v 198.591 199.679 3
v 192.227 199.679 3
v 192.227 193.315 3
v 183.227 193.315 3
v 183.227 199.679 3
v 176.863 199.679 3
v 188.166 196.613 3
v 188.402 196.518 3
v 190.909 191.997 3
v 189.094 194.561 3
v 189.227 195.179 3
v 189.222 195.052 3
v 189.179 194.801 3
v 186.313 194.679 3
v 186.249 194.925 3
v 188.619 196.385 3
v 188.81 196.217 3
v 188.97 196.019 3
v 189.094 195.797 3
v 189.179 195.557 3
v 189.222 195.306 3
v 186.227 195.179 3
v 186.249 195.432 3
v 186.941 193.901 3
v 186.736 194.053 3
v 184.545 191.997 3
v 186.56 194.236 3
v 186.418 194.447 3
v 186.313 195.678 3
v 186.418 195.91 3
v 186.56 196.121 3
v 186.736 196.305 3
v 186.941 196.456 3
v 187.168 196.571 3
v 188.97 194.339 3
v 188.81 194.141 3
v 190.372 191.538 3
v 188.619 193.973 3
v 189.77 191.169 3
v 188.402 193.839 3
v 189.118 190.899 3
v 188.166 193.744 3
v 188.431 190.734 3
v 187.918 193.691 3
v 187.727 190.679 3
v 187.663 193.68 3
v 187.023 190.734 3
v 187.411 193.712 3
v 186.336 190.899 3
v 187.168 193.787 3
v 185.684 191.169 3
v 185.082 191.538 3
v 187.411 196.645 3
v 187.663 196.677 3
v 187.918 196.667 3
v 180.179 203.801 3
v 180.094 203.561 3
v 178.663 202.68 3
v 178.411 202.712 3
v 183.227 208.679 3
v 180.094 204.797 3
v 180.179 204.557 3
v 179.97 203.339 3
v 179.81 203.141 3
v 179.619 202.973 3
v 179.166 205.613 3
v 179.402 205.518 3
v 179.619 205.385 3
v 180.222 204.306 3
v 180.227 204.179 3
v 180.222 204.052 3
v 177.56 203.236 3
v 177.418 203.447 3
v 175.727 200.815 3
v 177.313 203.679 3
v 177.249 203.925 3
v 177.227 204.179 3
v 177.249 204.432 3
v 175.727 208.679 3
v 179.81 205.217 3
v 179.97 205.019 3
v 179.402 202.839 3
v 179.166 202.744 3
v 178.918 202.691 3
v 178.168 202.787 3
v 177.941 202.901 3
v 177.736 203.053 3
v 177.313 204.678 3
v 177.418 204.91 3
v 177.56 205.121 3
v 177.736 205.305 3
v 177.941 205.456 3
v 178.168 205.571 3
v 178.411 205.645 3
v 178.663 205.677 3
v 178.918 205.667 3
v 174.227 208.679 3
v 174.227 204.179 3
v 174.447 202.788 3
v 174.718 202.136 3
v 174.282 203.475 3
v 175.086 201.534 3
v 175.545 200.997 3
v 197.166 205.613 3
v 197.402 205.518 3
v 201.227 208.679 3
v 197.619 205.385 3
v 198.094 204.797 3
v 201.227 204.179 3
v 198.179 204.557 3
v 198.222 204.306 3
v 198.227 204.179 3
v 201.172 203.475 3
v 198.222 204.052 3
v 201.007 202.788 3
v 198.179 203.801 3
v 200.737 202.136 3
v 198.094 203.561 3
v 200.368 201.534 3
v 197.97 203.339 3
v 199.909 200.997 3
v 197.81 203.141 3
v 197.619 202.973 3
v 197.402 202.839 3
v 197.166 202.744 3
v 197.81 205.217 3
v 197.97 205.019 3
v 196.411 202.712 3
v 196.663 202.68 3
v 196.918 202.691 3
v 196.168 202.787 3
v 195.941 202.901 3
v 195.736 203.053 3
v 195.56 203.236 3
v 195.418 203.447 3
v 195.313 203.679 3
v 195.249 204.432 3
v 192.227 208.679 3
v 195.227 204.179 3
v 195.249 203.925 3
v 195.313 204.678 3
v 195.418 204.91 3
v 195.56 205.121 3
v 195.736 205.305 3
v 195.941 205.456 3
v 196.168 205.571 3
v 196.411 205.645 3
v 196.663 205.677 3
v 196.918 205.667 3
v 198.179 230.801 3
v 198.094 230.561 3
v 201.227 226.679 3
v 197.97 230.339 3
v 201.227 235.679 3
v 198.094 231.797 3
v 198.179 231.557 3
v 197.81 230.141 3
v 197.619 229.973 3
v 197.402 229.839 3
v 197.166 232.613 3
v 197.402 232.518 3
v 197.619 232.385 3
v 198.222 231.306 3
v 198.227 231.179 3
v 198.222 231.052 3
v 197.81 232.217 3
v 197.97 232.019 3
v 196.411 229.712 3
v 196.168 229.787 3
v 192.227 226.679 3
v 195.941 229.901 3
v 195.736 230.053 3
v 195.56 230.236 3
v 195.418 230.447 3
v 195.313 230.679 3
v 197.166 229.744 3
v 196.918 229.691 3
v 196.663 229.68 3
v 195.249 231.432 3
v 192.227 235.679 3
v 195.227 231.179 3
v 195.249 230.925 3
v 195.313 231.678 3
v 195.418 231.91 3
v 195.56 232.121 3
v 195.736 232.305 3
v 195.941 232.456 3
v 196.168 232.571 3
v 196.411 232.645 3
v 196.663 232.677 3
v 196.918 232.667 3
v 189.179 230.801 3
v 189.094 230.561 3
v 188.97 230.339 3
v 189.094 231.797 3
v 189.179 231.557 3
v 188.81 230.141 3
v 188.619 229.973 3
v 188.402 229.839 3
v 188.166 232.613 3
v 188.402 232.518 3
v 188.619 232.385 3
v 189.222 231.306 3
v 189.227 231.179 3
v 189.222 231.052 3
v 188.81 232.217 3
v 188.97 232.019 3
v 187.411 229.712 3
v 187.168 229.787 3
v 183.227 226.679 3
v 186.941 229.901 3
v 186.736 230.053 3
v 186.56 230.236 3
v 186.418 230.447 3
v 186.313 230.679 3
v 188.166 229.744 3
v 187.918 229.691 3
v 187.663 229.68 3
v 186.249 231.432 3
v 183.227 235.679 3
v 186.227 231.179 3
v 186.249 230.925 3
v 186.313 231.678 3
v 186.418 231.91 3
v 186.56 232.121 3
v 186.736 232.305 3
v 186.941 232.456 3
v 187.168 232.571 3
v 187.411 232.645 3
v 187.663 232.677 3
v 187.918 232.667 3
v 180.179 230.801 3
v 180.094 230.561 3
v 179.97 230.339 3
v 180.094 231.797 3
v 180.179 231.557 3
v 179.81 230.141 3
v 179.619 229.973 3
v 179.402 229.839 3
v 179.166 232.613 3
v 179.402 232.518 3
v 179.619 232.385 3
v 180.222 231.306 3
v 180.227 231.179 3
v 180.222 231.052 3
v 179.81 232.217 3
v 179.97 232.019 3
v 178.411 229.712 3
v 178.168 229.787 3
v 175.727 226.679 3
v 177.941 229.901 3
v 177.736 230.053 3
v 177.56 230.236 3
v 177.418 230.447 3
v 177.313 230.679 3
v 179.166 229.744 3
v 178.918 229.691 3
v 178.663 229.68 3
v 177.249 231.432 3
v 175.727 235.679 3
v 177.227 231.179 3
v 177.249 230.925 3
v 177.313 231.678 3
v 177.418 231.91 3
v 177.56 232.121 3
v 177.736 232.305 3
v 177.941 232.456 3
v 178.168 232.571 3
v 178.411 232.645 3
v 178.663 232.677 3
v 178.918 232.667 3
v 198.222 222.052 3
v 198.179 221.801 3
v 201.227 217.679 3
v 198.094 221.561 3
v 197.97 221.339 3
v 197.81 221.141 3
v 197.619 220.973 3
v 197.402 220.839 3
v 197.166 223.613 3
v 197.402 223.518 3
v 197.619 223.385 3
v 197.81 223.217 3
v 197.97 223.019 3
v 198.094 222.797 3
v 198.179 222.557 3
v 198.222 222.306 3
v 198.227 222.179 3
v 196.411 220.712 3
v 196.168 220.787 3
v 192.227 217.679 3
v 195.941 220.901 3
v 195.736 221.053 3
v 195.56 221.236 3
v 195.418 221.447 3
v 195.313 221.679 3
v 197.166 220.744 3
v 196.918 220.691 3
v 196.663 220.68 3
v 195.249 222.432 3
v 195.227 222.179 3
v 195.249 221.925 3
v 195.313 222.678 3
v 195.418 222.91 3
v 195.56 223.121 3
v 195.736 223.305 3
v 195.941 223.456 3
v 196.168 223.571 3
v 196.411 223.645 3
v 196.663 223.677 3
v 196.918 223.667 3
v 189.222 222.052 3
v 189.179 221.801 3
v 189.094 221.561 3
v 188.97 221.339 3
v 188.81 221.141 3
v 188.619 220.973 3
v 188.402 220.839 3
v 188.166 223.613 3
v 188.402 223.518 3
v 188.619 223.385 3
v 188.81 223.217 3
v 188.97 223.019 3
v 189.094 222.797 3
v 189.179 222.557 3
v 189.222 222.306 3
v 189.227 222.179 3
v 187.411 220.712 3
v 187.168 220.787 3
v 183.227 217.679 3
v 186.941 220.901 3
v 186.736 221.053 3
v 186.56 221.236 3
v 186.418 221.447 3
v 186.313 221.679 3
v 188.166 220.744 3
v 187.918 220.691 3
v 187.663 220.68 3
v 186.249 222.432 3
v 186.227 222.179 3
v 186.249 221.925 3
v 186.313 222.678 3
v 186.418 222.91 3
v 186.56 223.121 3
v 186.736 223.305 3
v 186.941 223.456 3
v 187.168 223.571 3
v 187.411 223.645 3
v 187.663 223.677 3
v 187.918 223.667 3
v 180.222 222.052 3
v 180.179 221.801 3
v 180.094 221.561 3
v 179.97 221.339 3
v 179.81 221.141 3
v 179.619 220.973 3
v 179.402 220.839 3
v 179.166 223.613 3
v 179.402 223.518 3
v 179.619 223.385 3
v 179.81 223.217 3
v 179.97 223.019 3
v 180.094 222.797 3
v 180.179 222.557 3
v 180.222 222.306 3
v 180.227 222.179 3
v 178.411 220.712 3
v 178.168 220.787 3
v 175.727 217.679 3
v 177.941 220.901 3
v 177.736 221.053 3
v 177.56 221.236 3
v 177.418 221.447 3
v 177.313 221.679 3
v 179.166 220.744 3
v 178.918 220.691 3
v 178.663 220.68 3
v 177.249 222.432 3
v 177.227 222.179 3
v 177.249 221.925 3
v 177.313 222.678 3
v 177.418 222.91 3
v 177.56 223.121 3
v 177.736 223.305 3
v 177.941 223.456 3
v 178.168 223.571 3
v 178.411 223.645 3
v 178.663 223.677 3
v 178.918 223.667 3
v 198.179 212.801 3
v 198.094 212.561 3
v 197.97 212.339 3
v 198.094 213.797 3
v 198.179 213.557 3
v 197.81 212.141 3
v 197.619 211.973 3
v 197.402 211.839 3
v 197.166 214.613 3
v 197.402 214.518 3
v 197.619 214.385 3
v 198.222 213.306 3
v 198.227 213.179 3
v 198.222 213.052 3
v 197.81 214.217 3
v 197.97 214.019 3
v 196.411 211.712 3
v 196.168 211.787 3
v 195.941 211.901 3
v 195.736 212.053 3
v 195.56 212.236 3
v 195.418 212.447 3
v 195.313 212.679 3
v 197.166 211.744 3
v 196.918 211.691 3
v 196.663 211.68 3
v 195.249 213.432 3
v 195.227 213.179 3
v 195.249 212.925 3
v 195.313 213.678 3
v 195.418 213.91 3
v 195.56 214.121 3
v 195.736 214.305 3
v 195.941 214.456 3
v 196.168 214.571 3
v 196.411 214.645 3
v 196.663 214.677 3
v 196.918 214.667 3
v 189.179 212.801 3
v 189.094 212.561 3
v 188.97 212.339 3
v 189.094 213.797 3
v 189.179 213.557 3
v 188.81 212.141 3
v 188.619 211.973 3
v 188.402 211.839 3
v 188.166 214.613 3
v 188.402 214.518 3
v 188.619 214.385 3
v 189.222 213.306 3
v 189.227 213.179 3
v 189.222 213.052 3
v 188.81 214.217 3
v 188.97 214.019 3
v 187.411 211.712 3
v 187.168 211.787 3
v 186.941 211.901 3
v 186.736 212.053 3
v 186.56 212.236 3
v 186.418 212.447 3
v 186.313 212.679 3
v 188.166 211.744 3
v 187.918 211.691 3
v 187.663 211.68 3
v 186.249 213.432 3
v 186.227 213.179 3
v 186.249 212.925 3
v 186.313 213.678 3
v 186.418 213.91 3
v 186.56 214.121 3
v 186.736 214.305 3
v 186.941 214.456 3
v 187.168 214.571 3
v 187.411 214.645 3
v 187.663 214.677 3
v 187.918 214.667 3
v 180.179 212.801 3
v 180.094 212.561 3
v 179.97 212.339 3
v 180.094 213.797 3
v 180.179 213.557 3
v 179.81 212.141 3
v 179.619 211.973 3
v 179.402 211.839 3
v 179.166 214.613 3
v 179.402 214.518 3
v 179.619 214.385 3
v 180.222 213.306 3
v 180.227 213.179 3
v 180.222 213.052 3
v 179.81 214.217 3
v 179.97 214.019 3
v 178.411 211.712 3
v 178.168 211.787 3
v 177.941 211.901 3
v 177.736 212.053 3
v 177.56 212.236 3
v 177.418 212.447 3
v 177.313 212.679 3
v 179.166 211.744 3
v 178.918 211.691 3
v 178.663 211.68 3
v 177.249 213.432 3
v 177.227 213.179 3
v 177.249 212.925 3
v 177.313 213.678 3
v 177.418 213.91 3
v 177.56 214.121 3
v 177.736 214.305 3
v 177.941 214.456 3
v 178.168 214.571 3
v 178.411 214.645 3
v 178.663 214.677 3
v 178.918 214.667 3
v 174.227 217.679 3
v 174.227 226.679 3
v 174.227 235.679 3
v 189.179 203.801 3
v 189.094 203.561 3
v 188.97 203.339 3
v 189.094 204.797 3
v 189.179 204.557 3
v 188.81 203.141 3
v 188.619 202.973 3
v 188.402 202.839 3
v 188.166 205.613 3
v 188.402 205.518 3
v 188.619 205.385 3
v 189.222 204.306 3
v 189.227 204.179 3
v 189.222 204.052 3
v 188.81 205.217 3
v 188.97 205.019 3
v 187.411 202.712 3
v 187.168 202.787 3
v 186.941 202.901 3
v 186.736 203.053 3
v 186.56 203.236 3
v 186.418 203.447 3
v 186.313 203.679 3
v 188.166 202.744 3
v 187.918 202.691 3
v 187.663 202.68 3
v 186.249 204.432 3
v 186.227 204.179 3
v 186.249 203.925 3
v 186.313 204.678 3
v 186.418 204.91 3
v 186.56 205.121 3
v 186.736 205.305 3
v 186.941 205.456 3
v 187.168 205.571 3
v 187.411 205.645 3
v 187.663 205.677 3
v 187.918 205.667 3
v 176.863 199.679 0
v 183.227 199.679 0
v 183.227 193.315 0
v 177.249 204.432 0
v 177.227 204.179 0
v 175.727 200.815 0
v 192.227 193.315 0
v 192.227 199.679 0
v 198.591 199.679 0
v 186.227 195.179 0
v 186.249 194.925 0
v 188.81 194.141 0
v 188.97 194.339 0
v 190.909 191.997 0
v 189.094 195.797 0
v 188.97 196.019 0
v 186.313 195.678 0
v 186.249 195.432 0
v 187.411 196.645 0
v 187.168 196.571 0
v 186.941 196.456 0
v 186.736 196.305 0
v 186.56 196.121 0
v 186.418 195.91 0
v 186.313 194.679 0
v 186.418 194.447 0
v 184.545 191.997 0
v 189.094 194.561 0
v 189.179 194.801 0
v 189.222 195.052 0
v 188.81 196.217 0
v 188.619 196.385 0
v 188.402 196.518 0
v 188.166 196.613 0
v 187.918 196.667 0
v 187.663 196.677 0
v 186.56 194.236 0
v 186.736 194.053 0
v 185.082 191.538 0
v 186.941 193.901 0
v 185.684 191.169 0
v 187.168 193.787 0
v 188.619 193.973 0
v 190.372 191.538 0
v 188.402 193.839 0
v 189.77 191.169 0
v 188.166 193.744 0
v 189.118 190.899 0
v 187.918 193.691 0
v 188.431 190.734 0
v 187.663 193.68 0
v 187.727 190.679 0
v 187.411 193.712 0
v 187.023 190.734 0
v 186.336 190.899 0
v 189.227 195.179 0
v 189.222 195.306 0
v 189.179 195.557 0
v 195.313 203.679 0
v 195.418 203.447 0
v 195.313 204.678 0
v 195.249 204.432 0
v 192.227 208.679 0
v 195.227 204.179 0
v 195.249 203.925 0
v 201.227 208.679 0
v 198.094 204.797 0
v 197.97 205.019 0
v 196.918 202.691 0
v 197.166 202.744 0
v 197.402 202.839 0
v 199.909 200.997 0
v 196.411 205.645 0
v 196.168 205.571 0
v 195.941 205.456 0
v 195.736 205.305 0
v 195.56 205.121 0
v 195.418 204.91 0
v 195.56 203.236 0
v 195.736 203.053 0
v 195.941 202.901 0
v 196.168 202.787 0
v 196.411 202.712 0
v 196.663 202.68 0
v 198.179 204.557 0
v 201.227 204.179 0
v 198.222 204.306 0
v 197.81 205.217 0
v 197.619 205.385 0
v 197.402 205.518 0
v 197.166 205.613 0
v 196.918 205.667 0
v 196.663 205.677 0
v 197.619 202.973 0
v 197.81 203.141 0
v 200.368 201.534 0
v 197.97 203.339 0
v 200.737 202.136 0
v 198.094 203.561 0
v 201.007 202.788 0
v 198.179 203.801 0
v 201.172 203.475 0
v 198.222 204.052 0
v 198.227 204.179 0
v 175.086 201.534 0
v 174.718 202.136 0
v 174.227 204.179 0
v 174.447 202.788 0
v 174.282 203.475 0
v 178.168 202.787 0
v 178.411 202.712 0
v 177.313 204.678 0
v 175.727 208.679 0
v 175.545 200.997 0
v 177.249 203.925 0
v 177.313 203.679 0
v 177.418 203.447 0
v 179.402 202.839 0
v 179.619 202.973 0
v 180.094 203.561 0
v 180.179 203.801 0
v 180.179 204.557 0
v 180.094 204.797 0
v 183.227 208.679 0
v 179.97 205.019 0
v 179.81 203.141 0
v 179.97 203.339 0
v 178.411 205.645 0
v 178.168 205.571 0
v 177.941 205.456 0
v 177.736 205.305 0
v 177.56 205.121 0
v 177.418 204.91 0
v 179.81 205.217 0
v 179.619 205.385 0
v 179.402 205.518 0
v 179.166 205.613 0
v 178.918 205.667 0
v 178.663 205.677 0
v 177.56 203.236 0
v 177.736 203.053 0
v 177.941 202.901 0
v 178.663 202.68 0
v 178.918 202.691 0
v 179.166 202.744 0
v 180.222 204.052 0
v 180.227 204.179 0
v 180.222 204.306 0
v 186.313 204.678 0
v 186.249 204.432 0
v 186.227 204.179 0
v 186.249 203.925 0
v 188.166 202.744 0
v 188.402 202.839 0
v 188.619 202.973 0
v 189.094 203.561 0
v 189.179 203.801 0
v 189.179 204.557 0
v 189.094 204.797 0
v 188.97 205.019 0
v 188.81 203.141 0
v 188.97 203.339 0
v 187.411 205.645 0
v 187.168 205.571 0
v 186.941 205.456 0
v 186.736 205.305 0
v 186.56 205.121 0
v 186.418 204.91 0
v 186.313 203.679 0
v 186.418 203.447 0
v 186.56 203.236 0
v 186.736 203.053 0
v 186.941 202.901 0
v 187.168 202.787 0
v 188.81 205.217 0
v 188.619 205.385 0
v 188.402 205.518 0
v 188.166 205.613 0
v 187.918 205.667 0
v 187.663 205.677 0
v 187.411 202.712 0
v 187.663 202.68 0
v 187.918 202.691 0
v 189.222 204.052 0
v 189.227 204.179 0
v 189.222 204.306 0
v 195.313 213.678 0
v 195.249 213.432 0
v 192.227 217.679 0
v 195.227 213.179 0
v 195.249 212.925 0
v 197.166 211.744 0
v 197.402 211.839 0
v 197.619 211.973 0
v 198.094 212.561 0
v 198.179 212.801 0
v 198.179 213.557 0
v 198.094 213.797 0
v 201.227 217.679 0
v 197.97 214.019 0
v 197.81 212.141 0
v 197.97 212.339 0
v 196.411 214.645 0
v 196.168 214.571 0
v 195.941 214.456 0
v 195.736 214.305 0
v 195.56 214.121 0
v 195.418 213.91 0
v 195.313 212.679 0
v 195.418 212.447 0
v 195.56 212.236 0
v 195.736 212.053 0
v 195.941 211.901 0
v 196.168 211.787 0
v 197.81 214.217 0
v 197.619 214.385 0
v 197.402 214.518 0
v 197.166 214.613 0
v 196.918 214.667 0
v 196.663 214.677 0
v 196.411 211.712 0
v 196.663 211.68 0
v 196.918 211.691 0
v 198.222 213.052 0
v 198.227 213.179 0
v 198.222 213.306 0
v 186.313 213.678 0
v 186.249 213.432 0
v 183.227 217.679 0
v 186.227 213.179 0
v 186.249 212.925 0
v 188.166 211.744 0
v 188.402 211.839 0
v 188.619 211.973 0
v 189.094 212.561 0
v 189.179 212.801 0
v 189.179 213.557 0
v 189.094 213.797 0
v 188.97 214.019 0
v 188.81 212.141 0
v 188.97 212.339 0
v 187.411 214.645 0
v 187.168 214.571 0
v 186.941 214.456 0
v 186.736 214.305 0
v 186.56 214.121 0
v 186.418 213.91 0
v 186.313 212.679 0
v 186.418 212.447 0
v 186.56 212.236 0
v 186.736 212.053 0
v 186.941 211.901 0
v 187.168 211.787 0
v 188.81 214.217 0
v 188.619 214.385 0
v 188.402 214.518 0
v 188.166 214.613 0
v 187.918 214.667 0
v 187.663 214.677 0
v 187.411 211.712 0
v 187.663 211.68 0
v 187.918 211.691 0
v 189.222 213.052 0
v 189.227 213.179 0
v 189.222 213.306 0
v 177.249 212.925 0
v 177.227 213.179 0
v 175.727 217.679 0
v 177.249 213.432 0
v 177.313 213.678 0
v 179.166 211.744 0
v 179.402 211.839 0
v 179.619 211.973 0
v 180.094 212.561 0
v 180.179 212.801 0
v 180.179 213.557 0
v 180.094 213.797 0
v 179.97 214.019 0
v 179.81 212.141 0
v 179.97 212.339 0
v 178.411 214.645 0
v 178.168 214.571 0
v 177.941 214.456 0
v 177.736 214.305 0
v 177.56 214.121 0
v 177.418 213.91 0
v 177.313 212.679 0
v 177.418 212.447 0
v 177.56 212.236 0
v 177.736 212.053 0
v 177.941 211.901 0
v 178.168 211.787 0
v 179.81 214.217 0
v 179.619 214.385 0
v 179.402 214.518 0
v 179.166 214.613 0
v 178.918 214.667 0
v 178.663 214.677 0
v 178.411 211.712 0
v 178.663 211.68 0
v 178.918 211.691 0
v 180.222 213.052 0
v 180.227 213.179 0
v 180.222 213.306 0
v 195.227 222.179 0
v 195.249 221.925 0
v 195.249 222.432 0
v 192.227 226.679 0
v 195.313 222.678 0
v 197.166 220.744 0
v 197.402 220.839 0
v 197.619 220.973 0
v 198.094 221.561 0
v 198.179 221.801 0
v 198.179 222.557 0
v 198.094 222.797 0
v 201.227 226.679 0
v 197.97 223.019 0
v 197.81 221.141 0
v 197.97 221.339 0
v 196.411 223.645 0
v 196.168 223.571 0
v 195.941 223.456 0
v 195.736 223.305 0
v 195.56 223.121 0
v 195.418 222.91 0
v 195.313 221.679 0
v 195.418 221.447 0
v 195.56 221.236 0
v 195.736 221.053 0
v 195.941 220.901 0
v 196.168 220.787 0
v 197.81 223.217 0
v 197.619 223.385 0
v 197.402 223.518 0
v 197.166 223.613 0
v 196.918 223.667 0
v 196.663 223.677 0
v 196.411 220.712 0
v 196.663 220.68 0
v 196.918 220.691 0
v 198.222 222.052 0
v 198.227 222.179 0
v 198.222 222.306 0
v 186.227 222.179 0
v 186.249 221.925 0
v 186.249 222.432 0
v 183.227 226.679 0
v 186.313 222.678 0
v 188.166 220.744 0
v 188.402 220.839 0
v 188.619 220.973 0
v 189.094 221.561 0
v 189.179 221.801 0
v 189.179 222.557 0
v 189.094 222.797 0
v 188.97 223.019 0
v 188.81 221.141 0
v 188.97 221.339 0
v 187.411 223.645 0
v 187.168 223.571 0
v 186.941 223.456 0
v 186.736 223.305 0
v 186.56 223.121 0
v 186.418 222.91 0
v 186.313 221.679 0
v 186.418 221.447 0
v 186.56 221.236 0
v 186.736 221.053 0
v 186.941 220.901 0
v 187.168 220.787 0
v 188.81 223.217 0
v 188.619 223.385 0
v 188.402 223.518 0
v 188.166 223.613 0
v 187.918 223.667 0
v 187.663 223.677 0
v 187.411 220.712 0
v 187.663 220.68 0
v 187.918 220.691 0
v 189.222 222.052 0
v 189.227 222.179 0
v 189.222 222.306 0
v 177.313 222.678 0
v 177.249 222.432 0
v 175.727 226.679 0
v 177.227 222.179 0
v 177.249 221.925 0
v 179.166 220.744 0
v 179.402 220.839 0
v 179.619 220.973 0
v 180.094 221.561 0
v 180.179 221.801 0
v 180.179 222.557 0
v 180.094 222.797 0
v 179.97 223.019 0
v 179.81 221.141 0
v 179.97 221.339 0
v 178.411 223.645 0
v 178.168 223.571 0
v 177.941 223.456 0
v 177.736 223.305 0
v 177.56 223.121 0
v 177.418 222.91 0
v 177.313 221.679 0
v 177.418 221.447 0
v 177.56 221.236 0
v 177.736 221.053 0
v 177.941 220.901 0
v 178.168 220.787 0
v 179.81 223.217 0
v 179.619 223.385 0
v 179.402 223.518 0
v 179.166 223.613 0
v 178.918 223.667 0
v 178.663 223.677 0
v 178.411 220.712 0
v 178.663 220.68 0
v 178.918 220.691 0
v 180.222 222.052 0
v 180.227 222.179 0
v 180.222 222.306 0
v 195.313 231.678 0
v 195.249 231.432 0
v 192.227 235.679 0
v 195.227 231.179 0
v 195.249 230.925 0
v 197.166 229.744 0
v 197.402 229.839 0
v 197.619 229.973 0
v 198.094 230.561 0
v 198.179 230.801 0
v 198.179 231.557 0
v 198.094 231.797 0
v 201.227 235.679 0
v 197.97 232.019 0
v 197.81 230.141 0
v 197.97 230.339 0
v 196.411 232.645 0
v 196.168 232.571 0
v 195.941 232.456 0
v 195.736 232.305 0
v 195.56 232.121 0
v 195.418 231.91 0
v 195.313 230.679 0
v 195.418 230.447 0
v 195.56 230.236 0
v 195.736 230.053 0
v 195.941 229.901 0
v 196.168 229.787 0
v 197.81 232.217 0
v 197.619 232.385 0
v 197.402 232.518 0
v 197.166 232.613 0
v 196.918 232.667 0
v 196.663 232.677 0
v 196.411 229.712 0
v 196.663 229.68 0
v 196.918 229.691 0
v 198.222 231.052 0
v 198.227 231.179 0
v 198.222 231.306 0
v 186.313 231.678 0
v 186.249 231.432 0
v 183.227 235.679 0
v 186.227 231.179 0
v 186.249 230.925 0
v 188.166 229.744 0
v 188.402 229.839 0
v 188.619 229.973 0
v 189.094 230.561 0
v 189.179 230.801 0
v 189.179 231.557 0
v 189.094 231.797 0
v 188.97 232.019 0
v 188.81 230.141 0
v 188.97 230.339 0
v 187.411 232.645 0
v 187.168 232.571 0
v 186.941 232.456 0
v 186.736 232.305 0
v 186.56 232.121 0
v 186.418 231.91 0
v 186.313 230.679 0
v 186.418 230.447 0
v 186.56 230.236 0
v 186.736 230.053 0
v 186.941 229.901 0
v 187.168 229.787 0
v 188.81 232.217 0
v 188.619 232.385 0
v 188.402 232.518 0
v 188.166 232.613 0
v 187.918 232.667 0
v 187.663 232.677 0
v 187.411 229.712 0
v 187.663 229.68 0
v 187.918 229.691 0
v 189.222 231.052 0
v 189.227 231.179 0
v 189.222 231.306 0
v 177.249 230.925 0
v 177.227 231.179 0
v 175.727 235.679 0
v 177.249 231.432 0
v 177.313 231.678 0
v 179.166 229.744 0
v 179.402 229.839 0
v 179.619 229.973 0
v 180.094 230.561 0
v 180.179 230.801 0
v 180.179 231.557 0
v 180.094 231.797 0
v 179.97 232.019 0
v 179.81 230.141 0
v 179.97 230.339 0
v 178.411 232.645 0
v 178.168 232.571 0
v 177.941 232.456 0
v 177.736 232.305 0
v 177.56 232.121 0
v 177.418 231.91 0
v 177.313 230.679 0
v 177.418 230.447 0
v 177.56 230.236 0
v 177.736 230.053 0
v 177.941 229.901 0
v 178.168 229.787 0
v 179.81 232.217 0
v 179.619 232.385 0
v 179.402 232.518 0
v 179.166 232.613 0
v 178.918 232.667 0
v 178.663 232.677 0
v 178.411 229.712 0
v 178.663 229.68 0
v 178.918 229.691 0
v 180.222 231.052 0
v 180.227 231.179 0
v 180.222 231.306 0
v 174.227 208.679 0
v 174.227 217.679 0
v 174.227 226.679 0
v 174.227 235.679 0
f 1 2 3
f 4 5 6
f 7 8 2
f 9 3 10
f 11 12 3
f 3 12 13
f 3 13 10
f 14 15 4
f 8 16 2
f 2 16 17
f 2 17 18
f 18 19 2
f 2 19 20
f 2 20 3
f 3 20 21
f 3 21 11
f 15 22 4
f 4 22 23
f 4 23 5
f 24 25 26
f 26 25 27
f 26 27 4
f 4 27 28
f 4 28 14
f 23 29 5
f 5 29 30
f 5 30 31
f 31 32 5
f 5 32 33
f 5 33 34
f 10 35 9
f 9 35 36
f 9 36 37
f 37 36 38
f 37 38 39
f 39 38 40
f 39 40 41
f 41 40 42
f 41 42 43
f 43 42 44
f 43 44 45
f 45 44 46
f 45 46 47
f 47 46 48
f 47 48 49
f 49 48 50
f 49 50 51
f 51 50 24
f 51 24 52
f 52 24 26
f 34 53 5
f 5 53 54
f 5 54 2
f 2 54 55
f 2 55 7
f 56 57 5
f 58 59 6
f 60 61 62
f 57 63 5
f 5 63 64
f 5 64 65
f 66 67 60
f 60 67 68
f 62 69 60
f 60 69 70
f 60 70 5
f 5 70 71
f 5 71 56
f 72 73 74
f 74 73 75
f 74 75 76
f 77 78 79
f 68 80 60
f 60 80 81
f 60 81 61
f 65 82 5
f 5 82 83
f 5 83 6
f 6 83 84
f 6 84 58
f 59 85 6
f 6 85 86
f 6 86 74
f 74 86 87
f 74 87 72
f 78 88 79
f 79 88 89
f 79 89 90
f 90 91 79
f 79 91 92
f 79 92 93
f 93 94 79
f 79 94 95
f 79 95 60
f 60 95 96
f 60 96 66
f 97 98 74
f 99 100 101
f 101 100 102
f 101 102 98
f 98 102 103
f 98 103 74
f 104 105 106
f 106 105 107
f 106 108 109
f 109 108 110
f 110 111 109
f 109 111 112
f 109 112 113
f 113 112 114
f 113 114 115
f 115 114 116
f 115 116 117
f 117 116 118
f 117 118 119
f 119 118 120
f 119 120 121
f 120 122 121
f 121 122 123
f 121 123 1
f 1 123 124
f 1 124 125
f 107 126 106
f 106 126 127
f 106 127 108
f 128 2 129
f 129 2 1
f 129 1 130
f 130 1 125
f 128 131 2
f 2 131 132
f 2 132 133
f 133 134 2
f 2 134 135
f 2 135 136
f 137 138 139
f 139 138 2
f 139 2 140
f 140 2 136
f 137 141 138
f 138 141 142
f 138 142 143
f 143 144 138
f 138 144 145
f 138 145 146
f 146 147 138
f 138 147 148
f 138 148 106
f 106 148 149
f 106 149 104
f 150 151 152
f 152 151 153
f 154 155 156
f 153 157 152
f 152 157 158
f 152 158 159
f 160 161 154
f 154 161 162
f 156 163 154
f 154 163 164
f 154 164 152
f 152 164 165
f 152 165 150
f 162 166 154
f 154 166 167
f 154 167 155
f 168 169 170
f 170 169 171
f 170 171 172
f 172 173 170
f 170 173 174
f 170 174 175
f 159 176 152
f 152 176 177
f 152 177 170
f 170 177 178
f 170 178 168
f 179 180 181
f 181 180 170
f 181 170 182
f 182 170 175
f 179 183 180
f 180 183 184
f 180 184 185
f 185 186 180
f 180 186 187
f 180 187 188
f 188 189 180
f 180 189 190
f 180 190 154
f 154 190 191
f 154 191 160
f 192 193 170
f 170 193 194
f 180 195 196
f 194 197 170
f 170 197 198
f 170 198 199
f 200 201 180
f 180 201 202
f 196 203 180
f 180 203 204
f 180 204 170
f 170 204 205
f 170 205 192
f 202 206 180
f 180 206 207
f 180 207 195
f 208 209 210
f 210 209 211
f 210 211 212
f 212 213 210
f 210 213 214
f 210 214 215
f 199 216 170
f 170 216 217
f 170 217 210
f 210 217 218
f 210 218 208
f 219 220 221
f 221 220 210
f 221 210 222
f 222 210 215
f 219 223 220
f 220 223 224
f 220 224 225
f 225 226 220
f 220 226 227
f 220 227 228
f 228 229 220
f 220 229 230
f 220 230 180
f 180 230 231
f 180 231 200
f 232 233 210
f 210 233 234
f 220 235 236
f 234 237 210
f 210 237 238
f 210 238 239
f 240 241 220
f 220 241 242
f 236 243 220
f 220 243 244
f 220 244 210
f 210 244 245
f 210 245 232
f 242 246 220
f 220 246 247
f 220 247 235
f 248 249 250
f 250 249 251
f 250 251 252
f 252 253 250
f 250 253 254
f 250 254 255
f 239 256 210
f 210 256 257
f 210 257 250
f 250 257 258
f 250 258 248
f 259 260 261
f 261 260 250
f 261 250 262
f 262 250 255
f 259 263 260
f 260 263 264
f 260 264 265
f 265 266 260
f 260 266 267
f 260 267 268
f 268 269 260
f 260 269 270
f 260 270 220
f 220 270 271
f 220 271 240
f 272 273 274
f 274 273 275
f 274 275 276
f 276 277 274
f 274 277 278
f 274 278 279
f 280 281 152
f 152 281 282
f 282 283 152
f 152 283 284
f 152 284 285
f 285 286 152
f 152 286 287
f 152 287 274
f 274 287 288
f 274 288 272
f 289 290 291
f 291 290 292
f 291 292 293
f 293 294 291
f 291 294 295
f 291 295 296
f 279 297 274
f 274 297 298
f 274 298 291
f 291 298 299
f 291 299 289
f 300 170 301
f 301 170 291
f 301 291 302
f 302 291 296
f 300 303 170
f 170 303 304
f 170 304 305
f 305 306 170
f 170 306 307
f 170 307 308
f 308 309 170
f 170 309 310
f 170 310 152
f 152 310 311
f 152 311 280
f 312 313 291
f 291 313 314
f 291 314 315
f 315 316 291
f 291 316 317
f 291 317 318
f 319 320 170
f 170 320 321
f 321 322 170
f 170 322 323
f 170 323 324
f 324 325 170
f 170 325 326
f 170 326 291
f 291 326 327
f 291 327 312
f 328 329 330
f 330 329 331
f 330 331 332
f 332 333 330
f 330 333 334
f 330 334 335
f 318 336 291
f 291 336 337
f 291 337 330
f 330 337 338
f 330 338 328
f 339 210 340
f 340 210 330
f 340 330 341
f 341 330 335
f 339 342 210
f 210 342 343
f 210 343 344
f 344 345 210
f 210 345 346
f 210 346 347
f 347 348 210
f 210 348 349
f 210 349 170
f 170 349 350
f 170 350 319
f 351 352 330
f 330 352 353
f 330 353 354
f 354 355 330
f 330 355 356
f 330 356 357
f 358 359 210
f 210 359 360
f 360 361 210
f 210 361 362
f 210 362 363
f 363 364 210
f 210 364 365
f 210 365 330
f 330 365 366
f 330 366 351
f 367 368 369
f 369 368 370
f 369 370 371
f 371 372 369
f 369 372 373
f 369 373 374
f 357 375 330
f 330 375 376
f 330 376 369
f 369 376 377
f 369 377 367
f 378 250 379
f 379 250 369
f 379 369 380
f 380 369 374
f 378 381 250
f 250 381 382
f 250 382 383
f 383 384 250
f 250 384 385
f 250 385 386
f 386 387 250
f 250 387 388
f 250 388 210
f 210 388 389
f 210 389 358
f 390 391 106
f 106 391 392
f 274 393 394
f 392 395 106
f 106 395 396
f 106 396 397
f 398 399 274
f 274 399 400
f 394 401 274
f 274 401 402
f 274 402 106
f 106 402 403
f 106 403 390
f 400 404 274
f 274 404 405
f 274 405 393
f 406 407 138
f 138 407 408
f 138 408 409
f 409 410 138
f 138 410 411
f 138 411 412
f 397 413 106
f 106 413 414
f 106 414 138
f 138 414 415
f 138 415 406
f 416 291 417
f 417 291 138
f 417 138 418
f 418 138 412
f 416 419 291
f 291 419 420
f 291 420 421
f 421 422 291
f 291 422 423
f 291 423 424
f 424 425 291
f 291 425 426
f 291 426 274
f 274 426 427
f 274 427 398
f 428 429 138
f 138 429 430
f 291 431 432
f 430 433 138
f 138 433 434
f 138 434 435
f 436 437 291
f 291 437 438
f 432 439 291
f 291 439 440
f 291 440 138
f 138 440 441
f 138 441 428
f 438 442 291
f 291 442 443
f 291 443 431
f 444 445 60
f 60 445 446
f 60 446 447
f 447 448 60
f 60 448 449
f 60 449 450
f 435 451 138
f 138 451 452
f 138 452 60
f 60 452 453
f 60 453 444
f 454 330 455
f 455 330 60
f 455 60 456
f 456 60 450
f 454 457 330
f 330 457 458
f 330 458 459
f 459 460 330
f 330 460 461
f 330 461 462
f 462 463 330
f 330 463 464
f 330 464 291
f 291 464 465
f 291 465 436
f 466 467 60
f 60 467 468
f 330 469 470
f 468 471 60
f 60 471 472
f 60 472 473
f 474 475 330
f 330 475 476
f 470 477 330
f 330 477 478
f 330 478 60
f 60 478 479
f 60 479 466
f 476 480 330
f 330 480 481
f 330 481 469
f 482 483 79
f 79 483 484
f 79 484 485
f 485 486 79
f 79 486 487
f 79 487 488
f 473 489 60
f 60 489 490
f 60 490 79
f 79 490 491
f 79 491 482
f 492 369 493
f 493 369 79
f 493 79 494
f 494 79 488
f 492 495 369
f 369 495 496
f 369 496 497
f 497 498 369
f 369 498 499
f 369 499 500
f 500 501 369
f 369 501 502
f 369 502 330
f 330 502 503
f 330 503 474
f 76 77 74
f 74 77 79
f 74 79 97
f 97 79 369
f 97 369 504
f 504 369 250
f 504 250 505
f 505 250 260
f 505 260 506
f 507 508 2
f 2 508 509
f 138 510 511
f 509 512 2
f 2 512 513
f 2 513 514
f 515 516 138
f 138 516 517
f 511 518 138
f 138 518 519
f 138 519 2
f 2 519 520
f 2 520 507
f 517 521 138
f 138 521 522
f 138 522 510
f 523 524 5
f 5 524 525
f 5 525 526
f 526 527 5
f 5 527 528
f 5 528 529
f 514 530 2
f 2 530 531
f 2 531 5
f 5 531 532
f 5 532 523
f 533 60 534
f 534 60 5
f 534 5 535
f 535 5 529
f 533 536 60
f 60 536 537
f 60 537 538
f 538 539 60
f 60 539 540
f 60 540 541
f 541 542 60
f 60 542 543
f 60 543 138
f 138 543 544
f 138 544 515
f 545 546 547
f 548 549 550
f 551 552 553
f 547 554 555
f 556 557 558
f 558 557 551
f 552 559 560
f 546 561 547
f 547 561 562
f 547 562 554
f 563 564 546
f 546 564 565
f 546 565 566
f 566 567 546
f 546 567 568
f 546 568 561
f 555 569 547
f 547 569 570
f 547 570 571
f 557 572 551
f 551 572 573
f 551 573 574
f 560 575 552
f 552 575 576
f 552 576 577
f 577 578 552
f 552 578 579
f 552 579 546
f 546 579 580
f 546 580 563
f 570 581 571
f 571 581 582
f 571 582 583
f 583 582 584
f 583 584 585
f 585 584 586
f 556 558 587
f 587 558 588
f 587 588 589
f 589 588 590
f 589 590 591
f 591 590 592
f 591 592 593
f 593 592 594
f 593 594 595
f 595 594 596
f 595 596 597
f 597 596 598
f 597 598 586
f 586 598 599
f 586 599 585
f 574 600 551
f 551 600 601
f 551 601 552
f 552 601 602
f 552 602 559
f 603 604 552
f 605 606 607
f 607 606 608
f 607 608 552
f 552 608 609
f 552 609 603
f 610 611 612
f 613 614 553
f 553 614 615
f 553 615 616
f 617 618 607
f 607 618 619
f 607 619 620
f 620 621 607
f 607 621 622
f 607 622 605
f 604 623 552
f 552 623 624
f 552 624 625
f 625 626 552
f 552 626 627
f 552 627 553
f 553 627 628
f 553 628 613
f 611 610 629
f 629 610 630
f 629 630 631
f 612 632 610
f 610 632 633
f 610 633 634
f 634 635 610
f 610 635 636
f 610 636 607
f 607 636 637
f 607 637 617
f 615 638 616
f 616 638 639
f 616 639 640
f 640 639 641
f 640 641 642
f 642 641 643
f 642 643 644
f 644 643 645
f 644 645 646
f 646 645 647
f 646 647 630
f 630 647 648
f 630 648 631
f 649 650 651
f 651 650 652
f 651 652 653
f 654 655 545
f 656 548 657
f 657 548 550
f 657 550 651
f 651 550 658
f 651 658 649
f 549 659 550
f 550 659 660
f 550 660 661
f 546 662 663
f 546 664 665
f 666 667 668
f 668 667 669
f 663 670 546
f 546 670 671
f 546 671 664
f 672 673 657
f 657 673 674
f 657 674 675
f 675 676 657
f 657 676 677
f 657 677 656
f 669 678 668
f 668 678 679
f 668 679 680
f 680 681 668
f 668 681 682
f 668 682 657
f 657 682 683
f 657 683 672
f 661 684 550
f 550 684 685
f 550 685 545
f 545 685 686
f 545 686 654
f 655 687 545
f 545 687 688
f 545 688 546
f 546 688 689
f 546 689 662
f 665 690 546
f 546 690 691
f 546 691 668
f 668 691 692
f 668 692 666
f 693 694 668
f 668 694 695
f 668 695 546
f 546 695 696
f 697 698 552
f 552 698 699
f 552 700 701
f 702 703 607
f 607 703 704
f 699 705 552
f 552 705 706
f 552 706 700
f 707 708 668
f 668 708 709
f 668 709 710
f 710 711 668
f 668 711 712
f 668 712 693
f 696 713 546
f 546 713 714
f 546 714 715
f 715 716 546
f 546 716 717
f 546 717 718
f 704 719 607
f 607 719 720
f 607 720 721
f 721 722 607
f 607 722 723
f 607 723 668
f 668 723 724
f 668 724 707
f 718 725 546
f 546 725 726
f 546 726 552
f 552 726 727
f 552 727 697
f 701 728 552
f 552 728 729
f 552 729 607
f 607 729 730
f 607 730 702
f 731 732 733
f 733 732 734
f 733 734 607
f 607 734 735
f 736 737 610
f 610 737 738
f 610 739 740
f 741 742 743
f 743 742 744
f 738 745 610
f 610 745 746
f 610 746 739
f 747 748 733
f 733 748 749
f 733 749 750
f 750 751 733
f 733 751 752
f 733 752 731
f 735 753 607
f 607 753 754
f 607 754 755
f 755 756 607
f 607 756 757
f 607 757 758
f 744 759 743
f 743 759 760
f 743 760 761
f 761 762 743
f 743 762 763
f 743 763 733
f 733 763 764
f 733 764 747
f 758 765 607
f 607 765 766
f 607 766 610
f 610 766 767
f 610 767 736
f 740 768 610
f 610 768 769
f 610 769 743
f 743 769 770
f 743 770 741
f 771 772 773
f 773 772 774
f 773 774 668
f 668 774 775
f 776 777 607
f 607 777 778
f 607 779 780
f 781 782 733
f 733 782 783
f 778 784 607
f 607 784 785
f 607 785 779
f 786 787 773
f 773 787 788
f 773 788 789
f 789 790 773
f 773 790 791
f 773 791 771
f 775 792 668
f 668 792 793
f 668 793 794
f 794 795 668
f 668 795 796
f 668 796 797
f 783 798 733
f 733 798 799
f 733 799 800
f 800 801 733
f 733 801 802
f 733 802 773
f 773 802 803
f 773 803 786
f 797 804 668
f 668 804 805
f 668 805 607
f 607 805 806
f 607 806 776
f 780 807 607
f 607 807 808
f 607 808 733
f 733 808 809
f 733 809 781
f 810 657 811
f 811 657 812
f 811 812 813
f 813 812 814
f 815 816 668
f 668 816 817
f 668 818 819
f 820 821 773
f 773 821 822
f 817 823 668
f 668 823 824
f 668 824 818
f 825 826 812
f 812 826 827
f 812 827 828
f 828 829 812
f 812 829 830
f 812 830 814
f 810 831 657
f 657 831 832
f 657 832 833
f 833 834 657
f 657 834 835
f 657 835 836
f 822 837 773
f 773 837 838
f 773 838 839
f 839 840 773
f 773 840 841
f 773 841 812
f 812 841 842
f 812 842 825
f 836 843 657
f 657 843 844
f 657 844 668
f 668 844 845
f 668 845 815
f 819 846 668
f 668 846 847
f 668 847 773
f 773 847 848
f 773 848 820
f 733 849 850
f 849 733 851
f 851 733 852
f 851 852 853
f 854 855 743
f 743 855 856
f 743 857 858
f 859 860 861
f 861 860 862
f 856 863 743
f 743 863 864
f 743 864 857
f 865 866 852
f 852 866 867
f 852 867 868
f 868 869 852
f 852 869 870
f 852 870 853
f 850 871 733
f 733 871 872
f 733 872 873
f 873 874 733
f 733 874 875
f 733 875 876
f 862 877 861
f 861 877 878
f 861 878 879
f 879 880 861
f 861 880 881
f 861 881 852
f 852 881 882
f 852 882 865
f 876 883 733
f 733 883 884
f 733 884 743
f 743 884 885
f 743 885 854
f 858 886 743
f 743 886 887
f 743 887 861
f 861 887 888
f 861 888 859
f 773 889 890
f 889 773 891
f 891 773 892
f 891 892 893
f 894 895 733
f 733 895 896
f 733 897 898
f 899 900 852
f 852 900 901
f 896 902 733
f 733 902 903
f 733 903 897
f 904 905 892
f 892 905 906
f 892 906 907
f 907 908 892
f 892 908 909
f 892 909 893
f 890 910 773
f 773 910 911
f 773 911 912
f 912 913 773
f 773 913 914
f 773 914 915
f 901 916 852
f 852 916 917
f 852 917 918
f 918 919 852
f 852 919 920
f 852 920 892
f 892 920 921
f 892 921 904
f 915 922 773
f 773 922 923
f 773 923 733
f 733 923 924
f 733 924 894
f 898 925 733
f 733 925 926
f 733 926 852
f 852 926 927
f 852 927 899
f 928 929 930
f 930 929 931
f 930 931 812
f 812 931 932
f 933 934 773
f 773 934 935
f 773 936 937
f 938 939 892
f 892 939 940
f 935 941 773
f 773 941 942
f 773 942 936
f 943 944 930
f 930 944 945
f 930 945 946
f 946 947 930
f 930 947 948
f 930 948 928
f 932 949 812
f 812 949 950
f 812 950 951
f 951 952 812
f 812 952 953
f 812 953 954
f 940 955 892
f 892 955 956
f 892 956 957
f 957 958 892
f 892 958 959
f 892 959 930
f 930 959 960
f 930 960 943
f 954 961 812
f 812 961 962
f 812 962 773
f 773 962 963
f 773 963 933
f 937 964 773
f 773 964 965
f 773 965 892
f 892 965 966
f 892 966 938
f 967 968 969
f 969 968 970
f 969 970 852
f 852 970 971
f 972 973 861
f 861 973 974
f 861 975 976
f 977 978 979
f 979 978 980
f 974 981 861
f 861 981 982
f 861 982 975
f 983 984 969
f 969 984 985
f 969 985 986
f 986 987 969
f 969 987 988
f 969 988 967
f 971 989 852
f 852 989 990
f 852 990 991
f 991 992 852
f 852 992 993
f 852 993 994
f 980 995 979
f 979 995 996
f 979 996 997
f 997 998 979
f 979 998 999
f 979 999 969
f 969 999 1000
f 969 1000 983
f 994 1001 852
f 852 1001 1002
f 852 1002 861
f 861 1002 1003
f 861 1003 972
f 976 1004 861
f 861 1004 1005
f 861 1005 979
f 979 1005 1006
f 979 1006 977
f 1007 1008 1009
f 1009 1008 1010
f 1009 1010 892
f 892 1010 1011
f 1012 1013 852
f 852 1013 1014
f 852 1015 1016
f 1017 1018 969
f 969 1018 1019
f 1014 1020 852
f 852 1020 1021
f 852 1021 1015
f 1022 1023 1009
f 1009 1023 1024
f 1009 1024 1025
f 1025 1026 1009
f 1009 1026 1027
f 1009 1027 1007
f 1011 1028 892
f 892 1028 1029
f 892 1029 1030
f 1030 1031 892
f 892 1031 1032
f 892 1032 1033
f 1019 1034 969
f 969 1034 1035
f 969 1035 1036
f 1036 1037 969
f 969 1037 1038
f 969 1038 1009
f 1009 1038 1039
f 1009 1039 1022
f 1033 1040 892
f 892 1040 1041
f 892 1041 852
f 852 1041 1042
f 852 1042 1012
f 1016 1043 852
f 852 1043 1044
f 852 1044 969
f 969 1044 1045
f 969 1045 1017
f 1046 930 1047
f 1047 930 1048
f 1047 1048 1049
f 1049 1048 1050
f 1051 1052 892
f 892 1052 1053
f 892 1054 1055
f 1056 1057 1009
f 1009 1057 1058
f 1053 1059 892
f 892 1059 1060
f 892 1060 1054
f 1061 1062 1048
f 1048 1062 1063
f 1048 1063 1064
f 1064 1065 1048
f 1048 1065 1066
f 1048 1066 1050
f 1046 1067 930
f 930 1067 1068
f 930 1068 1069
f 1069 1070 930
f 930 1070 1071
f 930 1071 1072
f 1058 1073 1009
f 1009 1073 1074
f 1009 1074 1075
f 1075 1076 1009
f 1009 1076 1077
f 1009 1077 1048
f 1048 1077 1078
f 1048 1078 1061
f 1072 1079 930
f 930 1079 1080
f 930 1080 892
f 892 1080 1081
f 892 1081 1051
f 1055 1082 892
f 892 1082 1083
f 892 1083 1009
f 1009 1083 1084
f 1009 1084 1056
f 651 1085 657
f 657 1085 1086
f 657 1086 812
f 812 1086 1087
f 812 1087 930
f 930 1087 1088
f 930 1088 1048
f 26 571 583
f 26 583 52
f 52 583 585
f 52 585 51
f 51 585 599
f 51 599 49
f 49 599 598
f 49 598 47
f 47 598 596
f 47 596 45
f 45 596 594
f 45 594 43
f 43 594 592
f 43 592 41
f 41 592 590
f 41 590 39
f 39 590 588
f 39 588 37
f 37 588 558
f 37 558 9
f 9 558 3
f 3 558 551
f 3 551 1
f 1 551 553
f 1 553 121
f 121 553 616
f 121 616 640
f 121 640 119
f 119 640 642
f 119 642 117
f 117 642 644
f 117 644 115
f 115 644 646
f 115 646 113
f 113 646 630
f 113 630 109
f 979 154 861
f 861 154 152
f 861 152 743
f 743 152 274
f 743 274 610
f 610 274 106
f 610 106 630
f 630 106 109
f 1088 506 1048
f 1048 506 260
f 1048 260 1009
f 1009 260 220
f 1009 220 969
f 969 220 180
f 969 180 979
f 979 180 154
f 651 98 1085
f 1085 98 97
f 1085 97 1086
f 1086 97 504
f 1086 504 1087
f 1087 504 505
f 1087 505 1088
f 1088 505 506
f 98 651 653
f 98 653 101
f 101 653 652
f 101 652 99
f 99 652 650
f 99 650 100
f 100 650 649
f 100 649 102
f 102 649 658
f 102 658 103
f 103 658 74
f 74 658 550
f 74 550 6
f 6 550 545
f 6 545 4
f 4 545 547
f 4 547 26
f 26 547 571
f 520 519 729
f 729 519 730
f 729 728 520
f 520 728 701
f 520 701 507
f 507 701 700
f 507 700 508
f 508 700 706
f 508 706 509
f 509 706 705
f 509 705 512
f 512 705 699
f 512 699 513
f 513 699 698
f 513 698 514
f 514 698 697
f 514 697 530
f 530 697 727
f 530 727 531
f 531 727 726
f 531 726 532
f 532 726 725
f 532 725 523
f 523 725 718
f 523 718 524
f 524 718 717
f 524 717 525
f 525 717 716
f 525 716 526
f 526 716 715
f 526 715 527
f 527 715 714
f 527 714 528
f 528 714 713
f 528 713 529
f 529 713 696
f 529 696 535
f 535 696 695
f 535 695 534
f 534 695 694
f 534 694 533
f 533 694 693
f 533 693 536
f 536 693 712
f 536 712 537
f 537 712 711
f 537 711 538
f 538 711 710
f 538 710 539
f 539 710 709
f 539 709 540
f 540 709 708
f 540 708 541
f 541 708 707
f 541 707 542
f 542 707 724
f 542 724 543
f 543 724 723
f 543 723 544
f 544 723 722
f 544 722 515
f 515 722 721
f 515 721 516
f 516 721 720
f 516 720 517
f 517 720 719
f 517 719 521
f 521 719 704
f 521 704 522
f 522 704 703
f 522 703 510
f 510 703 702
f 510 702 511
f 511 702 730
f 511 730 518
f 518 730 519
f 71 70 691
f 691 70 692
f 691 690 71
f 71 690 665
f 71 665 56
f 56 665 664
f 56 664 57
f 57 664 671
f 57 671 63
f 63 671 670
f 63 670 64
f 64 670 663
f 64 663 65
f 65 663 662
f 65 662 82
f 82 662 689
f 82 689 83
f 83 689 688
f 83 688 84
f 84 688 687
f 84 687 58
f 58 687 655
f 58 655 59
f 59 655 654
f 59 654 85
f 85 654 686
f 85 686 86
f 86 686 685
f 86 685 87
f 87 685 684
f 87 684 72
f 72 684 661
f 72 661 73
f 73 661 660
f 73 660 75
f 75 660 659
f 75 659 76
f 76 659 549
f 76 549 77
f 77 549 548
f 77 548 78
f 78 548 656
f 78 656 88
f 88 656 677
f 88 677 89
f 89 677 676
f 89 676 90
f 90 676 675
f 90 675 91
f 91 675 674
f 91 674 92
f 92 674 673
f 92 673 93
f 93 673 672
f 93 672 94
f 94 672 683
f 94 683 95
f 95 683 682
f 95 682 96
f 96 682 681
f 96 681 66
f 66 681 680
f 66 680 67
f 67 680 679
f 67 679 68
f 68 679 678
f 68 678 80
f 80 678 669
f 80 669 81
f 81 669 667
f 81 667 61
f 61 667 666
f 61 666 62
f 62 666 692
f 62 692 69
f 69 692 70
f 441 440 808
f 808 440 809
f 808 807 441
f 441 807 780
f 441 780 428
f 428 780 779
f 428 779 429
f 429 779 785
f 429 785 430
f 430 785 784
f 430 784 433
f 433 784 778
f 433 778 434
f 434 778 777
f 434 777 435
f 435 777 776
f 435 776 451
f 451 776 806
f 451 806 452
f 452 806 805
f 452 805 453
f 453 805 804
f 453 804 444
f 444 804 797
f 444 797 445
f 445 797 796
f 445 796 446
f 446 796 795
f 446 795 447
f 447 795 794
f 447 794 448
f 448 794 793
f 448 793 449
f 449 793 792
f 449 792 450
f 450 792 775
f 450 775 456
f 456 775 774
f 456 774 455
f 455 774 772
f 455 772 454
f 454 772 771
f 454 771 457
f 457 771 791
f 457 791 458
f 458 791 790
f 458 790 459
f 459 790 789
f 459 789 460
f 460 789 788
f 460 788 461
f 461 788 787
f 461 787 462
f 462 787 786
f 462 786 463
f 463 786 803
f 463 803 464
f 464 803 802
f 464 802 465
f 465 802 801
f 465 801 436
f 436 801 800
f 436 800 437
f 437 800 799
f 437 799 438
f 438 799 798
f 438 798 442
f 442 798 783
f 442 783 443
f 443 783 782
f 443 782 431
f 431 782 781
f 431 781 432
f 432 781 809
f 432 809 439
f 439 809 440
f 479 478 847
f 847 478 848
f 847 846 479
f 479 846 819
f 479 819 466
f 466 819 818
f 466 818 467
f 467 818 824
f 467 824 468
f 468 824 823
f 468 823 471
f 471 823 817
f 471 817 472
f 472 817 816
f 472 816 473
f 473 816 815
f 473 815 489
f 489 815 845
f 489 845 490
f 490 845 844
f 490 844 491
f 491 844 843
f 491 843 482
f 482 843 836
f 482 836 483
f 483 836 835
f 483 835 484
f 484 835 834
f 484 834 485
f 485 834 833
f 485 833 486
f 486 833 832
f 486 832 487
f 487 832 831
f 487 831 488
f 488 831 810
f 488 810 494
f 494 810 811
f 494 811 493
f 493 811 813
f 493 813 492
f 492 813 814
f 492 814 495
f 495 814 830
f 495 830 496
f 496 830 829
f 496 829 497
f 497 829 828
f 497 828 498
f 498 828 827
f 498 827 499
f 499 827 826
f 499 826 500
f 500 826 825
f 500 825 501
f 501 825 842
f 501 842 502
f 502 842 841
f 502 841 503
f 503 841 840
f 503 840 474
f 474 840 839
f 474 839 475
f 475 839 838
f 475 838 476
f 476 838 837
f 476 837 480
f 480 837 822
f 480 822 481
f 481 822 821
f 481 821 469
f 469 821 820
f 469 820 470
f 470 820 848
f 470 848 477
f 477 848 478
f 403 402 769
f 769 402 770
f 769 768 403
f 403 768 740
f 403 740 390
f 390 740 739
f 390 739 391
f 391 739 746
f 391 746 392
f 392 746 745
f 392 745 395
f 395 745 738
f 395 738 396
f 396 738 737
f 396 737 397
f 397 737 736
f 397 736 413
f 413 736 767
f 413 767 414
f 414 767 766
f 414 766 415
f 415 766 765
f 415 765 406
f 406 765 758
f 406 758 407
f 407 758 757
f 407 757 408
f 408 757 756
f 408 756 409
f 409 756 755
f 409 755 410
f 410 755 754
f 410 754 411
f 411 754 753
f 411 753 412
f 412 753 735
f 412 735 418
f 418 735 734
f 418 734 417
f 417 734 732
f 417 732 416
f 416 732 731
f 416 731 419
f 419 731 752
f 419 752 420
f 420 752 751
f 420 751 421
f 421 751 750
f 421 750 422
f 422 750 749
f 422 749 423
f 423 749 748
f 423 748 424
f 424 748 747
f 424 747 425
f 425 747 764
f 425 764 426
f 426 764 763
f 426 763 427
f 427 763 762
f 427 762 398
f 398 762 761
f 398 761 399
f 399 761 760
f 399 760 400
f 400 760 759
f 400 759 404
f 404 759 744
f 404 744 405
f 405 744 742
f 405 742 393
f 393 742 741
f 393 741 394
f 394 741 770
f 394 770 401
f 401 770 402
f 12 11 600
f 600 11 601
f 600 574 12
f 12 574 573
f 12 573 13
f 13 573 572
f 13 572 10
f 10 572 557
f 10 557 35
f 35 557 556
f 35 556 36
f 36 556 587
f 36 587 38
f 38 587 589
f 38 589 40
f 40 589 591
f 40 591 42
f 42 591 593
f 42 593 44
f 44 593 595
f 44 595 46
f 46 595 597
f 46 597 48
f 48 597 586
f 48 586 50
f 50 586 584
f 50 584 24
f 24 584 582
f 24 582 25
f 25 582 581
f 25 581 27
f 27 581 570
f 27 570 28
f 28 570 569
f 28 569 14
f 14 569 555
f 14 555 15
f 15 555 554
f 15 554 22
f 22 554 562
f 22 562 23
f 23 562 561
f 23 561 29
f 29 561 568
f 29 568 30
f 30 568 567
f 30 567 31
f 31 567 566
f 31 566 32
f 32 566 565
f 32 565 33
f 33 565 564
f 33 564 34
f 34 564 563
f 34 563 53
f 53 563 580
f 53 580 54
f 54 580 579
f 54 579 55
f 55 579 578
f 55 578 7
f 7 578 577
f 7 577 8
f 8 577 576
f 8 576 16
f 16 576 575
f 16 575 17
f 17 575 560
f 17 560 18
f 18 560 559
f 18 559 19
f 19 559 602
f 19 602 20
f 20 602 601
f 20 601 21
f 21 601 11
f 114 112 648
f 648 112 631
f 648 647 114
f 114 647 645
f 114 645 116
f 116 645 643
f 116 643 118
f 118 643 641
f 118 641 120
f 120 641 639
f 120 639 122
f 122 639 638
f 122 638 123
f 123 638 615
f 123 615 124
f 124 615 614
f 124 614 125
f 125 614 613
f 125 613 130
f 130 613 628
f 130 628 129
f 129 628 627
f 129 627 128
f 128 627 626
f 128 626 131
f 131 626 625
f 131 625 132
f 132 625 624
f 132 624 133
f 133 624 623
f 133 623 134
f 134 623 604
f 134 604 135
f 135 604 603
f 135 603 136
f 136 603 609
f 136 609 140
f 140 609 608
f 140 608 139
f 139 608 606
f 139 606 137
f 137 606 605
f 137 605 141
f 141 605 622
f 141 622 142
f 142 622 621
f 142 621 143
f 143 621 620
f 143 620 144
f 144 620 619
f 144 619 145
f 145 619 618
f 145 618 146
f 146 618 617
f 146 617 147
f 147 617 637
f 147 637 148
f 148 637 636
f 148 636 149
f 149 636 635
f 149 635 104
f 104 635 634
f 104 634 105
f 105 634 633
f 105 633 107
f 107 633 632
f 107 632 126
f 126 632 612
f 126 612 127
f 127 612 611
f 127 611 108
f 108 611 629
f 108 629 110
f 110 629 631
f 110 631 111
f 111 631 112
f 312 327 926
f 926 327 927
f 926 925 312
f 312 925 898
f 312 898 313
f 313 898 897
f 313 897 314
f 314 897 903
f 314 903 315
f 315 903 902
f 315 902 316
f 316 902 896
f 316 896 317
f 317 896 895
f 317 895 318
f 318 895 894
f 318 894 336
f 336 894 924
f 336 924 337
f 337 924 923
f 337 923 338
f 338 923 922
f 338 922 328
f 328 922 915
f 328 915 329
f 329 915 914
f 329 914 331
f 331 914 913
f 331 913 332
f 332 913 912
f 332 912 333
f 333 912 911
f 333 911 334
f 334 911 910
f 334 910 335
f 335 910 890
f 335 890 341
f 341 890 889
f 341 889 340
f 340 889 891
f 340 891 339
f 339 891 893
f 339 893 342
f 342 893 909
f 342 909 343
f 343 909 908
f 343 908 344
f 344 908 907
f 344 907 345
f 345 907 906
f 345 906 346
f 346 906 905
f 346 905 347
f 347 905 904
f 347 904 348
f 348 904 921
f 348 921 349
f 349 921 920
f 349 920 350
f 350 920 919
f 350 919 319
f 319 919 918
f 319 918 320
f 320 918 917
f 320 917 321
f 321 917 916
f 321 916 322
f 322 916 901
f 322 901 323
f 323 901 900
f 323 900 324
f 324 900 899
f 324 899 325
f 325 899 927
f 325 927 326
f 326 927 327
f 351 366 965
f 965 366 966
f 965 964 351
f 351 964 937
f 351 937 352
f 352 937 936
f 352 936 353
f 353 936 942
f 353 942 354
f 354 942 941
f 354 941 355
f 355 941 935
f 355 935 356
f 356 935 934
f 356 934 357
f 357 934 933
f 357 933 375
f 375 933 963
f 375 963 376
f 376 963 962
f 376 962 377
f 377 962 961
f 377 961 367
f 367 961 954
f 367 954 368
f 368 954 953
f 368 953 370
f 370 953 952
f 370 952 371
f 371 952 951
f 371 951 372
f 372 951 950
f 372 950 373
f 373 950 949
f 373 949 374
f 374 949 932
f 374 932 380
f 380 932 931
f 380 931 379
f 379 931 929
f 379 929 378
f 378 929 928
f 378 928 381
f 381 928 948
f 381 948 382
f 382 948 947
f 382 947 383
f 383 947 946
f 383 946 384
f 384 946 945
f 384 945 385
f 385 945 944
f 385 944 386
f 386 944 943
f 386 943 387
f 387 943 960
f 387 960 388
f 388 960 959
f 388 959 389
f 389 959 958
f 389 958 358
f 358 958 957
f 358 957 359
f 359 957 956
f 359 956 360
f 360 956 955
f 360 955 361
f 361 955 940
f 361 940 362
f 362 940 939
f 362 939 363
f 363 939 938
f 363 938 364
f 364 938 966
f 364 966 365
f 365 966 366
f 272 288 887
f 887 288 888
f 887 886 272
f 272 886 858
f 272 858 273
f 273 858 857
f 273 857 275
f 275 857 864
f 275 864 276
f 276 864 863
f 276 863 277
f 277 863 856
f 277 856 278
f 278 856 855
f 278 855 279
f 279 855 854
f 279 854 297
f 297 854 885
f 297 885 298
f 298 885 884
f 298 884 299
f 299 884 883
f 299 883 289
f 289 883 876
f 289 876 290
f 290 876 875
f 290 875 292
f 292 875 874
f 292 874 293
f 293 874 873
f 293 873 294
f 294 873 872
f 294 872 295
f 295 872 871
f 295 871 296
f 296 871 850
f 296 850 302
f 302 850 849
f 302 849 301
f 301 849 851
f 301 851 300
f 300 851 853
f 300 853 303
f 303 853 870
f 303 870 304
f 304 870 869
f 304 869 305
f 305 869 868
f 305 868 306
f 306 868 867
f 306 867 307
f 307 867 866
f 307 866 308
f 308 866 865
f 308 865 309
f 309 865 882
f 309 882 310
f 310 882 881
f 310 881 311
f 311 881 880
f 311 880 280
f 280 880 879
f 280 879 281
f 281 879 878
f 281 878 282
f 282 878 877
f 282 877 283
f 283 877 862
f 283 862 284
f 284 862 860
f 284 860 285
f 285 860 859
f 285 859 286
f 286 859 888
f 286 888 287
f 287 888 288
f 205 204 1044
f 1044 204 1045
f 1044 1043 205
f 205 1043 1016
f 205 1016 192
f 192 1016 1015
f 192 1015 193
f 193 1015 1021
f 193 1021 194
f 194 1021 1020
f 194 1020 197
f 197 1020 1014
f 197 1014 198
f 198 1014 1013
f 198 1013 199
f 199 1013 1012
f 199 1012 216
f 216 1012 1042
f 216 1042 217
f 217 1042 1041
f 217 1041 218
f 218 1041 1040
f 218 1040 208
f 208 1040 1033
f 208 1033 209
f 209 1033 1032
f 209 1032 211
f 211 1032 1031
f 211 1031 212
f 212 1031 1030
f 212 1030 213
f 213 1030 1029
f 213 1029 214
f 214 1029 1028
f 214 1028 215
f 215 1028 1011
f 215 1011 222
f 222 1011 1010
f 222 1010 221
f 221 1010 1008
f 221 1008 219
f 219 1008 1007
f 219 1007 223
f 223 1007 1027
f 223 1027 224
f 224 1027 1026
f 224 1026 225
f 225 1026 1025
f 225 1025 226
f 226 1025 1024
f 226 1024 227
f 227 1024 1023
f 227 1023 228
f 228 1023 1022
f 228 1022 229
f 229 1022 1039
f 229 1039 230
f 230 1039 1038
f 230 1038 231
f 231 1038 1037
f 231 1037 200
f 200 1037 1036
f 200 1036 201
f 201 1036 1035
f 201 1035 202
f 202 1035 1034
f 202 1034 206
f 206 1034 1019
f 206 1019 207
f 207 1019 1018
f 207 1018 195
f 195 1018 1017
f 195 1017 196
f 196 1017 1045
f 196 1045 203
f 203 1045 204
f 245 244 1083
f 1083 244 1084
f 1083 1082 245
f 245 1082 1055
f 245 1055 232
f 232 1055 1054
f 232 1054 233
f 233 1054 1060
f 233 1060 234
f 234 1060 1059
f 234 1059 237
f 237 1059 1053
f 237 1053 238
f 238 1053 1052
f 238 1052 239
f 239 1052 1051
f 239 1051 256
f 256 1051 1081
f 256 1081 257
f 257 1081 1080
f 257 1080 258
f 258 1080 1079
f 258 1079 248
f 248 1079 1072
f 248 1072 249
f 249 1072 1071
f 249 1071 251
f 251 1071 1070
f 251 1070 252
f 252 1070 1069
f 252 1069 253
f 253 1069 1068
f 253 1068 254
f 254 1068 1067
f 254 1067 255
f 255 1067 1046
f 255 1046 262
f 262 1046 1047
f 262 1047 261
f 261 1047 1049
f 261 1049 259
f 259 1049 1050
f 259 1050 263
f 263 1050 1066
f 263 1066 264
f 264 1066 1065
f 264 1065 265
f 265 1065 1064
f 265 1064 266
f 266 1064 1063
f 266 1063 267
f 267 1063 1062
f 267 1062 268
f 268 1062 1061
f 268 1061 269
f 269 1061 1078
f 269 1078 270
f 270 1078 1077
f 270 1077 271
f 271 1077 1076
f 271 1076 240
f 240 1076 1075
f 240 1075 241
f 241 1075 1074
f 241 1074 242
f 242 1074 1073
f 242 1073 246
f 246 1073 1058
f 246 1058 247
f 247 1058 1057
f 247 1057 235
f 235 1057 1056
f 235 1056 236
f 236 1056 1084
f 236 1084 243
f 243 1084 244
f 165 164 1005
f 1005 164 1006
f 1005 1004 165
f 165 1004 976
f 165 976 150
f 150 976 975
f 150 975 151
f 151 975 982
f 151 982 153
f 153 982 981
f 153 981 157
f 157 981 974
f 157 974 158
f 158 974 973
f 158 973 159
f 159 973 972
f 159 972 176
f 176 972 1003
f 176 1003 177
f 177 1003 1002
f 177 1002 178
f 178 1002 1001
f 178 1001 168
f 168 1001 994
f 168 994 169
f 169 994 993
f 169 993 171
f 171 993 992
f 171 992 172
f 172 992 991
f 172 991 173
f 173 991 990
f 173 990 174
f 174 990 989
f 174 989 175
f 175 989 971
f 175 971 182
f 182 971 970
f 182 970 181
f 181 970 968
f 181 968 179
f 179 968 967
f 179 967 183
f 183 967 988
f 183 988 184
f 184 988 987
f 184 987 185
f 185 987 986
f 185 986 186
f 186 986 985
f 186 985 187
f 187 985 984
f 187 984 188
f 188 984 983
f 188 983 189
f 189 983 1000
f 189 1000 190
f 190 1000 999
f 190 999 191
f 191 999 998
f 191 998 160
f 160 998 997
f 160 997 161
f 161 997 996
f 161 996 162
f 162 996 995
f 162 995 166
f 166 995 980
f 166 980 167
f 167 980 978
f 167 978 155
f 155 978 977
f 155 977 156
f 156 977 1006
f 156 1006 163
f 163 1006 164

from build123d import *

# Parameters (mm, degrees)
MODEL_R                 = 1.5
SALIENTE_EXTRUIR1_DEPTH = 3


with BuildPart() as part:
    # Model → Saliente-Extruir1 (new body)
    with BuildSketch(Plane.XY):
        with BuildLine():
            Line((174.227054575, 213.178720063), (174.227054575, 204.178720063))
            ThreePointArc((174.227054575, 204.178720063), (174.569596678, 202.456644617), (175.545074059, 200.996739548))
            Line((175.545074059, 200.996739548), (184.545074059, 191.996739548))
            ThreePointArc((184.545074059, 191.996739548), (187.727054575, 190.678720063), (190.90903509, 191.996739548))
            Line((190.90903509, 191.996739548), (199.90903509, 200.996739548))
            ThreePointArc((199.90903509, 200.996739548), (200.884512471, 202.456644617), (201.227054575, 204.178720063))
            Line((201.227054575, 204.178720063), (201.227054575, 235.678720063))
            Line((201.227054575, 235.678720063), (174.227054575, 235.678720063))
            Line((174.227054575, 235.678720063), (174.227054575, 213.178720063))
        make_face()
        with Locations((187.727054575, 204.178720063)):
            Circle(MODEL_R, mode=Mode.SUBTRACT)
        with Locations((178.727054575, 204.178720063)):
            Circle(MODEL_R, mode=Mode.SUBTRACT)
        with Locations((187.727054575, 213.178720063)):
            Circle(MODEL_R, mode=Mode.SUBTRACT)
        with Locations((178.727054575, 213.178720063)):
            Circle(MODEL_R, mode=Mode.SUBTRACT)
        with Locations((196.727054575, 213.178720063)):
            Circle(MODEL_R, mode=Mode.SUBTRACT)
        with Locations((187.727054575, 195.178720063)):
            Circle(MODEL_R, mode=Mode.SUBTRACT)
        with Locations((196.727054575, 204.178720063)):
            Circle(MODEL_R, mode=Mode.SUBTRACT)
        with Locations((187.727054575, 222.178720063)):
            Circle(MODEL_R, mode=Mode.SUBTRACT)
        with Locations((178.727054575, 222.178720063)):
            Circle(MODEL_R, mode=Mode.SUBTRACT)
        with Locations((196.727054575, 222.178720063)):
            Circle(MODEL_R, mode=Mode.SUBTRACT)
        with Locations((187.727054575, 231.178720063)):
            Circle(MODEL_R, mode=Mode.SUBTRACT)
        with Locations((178.727054575, 231.178720063)):
            Circle(MODEL_R, mode=Mode.SUBTRACT)
        with Locations((196.727054575, 231.178720063)):
            Circle(MODEL_R, mode=Mode.SUBTRACT)
    extrude(amount=SALIENTE_EXTRUIR1_DEPTH)


solid = part.part
